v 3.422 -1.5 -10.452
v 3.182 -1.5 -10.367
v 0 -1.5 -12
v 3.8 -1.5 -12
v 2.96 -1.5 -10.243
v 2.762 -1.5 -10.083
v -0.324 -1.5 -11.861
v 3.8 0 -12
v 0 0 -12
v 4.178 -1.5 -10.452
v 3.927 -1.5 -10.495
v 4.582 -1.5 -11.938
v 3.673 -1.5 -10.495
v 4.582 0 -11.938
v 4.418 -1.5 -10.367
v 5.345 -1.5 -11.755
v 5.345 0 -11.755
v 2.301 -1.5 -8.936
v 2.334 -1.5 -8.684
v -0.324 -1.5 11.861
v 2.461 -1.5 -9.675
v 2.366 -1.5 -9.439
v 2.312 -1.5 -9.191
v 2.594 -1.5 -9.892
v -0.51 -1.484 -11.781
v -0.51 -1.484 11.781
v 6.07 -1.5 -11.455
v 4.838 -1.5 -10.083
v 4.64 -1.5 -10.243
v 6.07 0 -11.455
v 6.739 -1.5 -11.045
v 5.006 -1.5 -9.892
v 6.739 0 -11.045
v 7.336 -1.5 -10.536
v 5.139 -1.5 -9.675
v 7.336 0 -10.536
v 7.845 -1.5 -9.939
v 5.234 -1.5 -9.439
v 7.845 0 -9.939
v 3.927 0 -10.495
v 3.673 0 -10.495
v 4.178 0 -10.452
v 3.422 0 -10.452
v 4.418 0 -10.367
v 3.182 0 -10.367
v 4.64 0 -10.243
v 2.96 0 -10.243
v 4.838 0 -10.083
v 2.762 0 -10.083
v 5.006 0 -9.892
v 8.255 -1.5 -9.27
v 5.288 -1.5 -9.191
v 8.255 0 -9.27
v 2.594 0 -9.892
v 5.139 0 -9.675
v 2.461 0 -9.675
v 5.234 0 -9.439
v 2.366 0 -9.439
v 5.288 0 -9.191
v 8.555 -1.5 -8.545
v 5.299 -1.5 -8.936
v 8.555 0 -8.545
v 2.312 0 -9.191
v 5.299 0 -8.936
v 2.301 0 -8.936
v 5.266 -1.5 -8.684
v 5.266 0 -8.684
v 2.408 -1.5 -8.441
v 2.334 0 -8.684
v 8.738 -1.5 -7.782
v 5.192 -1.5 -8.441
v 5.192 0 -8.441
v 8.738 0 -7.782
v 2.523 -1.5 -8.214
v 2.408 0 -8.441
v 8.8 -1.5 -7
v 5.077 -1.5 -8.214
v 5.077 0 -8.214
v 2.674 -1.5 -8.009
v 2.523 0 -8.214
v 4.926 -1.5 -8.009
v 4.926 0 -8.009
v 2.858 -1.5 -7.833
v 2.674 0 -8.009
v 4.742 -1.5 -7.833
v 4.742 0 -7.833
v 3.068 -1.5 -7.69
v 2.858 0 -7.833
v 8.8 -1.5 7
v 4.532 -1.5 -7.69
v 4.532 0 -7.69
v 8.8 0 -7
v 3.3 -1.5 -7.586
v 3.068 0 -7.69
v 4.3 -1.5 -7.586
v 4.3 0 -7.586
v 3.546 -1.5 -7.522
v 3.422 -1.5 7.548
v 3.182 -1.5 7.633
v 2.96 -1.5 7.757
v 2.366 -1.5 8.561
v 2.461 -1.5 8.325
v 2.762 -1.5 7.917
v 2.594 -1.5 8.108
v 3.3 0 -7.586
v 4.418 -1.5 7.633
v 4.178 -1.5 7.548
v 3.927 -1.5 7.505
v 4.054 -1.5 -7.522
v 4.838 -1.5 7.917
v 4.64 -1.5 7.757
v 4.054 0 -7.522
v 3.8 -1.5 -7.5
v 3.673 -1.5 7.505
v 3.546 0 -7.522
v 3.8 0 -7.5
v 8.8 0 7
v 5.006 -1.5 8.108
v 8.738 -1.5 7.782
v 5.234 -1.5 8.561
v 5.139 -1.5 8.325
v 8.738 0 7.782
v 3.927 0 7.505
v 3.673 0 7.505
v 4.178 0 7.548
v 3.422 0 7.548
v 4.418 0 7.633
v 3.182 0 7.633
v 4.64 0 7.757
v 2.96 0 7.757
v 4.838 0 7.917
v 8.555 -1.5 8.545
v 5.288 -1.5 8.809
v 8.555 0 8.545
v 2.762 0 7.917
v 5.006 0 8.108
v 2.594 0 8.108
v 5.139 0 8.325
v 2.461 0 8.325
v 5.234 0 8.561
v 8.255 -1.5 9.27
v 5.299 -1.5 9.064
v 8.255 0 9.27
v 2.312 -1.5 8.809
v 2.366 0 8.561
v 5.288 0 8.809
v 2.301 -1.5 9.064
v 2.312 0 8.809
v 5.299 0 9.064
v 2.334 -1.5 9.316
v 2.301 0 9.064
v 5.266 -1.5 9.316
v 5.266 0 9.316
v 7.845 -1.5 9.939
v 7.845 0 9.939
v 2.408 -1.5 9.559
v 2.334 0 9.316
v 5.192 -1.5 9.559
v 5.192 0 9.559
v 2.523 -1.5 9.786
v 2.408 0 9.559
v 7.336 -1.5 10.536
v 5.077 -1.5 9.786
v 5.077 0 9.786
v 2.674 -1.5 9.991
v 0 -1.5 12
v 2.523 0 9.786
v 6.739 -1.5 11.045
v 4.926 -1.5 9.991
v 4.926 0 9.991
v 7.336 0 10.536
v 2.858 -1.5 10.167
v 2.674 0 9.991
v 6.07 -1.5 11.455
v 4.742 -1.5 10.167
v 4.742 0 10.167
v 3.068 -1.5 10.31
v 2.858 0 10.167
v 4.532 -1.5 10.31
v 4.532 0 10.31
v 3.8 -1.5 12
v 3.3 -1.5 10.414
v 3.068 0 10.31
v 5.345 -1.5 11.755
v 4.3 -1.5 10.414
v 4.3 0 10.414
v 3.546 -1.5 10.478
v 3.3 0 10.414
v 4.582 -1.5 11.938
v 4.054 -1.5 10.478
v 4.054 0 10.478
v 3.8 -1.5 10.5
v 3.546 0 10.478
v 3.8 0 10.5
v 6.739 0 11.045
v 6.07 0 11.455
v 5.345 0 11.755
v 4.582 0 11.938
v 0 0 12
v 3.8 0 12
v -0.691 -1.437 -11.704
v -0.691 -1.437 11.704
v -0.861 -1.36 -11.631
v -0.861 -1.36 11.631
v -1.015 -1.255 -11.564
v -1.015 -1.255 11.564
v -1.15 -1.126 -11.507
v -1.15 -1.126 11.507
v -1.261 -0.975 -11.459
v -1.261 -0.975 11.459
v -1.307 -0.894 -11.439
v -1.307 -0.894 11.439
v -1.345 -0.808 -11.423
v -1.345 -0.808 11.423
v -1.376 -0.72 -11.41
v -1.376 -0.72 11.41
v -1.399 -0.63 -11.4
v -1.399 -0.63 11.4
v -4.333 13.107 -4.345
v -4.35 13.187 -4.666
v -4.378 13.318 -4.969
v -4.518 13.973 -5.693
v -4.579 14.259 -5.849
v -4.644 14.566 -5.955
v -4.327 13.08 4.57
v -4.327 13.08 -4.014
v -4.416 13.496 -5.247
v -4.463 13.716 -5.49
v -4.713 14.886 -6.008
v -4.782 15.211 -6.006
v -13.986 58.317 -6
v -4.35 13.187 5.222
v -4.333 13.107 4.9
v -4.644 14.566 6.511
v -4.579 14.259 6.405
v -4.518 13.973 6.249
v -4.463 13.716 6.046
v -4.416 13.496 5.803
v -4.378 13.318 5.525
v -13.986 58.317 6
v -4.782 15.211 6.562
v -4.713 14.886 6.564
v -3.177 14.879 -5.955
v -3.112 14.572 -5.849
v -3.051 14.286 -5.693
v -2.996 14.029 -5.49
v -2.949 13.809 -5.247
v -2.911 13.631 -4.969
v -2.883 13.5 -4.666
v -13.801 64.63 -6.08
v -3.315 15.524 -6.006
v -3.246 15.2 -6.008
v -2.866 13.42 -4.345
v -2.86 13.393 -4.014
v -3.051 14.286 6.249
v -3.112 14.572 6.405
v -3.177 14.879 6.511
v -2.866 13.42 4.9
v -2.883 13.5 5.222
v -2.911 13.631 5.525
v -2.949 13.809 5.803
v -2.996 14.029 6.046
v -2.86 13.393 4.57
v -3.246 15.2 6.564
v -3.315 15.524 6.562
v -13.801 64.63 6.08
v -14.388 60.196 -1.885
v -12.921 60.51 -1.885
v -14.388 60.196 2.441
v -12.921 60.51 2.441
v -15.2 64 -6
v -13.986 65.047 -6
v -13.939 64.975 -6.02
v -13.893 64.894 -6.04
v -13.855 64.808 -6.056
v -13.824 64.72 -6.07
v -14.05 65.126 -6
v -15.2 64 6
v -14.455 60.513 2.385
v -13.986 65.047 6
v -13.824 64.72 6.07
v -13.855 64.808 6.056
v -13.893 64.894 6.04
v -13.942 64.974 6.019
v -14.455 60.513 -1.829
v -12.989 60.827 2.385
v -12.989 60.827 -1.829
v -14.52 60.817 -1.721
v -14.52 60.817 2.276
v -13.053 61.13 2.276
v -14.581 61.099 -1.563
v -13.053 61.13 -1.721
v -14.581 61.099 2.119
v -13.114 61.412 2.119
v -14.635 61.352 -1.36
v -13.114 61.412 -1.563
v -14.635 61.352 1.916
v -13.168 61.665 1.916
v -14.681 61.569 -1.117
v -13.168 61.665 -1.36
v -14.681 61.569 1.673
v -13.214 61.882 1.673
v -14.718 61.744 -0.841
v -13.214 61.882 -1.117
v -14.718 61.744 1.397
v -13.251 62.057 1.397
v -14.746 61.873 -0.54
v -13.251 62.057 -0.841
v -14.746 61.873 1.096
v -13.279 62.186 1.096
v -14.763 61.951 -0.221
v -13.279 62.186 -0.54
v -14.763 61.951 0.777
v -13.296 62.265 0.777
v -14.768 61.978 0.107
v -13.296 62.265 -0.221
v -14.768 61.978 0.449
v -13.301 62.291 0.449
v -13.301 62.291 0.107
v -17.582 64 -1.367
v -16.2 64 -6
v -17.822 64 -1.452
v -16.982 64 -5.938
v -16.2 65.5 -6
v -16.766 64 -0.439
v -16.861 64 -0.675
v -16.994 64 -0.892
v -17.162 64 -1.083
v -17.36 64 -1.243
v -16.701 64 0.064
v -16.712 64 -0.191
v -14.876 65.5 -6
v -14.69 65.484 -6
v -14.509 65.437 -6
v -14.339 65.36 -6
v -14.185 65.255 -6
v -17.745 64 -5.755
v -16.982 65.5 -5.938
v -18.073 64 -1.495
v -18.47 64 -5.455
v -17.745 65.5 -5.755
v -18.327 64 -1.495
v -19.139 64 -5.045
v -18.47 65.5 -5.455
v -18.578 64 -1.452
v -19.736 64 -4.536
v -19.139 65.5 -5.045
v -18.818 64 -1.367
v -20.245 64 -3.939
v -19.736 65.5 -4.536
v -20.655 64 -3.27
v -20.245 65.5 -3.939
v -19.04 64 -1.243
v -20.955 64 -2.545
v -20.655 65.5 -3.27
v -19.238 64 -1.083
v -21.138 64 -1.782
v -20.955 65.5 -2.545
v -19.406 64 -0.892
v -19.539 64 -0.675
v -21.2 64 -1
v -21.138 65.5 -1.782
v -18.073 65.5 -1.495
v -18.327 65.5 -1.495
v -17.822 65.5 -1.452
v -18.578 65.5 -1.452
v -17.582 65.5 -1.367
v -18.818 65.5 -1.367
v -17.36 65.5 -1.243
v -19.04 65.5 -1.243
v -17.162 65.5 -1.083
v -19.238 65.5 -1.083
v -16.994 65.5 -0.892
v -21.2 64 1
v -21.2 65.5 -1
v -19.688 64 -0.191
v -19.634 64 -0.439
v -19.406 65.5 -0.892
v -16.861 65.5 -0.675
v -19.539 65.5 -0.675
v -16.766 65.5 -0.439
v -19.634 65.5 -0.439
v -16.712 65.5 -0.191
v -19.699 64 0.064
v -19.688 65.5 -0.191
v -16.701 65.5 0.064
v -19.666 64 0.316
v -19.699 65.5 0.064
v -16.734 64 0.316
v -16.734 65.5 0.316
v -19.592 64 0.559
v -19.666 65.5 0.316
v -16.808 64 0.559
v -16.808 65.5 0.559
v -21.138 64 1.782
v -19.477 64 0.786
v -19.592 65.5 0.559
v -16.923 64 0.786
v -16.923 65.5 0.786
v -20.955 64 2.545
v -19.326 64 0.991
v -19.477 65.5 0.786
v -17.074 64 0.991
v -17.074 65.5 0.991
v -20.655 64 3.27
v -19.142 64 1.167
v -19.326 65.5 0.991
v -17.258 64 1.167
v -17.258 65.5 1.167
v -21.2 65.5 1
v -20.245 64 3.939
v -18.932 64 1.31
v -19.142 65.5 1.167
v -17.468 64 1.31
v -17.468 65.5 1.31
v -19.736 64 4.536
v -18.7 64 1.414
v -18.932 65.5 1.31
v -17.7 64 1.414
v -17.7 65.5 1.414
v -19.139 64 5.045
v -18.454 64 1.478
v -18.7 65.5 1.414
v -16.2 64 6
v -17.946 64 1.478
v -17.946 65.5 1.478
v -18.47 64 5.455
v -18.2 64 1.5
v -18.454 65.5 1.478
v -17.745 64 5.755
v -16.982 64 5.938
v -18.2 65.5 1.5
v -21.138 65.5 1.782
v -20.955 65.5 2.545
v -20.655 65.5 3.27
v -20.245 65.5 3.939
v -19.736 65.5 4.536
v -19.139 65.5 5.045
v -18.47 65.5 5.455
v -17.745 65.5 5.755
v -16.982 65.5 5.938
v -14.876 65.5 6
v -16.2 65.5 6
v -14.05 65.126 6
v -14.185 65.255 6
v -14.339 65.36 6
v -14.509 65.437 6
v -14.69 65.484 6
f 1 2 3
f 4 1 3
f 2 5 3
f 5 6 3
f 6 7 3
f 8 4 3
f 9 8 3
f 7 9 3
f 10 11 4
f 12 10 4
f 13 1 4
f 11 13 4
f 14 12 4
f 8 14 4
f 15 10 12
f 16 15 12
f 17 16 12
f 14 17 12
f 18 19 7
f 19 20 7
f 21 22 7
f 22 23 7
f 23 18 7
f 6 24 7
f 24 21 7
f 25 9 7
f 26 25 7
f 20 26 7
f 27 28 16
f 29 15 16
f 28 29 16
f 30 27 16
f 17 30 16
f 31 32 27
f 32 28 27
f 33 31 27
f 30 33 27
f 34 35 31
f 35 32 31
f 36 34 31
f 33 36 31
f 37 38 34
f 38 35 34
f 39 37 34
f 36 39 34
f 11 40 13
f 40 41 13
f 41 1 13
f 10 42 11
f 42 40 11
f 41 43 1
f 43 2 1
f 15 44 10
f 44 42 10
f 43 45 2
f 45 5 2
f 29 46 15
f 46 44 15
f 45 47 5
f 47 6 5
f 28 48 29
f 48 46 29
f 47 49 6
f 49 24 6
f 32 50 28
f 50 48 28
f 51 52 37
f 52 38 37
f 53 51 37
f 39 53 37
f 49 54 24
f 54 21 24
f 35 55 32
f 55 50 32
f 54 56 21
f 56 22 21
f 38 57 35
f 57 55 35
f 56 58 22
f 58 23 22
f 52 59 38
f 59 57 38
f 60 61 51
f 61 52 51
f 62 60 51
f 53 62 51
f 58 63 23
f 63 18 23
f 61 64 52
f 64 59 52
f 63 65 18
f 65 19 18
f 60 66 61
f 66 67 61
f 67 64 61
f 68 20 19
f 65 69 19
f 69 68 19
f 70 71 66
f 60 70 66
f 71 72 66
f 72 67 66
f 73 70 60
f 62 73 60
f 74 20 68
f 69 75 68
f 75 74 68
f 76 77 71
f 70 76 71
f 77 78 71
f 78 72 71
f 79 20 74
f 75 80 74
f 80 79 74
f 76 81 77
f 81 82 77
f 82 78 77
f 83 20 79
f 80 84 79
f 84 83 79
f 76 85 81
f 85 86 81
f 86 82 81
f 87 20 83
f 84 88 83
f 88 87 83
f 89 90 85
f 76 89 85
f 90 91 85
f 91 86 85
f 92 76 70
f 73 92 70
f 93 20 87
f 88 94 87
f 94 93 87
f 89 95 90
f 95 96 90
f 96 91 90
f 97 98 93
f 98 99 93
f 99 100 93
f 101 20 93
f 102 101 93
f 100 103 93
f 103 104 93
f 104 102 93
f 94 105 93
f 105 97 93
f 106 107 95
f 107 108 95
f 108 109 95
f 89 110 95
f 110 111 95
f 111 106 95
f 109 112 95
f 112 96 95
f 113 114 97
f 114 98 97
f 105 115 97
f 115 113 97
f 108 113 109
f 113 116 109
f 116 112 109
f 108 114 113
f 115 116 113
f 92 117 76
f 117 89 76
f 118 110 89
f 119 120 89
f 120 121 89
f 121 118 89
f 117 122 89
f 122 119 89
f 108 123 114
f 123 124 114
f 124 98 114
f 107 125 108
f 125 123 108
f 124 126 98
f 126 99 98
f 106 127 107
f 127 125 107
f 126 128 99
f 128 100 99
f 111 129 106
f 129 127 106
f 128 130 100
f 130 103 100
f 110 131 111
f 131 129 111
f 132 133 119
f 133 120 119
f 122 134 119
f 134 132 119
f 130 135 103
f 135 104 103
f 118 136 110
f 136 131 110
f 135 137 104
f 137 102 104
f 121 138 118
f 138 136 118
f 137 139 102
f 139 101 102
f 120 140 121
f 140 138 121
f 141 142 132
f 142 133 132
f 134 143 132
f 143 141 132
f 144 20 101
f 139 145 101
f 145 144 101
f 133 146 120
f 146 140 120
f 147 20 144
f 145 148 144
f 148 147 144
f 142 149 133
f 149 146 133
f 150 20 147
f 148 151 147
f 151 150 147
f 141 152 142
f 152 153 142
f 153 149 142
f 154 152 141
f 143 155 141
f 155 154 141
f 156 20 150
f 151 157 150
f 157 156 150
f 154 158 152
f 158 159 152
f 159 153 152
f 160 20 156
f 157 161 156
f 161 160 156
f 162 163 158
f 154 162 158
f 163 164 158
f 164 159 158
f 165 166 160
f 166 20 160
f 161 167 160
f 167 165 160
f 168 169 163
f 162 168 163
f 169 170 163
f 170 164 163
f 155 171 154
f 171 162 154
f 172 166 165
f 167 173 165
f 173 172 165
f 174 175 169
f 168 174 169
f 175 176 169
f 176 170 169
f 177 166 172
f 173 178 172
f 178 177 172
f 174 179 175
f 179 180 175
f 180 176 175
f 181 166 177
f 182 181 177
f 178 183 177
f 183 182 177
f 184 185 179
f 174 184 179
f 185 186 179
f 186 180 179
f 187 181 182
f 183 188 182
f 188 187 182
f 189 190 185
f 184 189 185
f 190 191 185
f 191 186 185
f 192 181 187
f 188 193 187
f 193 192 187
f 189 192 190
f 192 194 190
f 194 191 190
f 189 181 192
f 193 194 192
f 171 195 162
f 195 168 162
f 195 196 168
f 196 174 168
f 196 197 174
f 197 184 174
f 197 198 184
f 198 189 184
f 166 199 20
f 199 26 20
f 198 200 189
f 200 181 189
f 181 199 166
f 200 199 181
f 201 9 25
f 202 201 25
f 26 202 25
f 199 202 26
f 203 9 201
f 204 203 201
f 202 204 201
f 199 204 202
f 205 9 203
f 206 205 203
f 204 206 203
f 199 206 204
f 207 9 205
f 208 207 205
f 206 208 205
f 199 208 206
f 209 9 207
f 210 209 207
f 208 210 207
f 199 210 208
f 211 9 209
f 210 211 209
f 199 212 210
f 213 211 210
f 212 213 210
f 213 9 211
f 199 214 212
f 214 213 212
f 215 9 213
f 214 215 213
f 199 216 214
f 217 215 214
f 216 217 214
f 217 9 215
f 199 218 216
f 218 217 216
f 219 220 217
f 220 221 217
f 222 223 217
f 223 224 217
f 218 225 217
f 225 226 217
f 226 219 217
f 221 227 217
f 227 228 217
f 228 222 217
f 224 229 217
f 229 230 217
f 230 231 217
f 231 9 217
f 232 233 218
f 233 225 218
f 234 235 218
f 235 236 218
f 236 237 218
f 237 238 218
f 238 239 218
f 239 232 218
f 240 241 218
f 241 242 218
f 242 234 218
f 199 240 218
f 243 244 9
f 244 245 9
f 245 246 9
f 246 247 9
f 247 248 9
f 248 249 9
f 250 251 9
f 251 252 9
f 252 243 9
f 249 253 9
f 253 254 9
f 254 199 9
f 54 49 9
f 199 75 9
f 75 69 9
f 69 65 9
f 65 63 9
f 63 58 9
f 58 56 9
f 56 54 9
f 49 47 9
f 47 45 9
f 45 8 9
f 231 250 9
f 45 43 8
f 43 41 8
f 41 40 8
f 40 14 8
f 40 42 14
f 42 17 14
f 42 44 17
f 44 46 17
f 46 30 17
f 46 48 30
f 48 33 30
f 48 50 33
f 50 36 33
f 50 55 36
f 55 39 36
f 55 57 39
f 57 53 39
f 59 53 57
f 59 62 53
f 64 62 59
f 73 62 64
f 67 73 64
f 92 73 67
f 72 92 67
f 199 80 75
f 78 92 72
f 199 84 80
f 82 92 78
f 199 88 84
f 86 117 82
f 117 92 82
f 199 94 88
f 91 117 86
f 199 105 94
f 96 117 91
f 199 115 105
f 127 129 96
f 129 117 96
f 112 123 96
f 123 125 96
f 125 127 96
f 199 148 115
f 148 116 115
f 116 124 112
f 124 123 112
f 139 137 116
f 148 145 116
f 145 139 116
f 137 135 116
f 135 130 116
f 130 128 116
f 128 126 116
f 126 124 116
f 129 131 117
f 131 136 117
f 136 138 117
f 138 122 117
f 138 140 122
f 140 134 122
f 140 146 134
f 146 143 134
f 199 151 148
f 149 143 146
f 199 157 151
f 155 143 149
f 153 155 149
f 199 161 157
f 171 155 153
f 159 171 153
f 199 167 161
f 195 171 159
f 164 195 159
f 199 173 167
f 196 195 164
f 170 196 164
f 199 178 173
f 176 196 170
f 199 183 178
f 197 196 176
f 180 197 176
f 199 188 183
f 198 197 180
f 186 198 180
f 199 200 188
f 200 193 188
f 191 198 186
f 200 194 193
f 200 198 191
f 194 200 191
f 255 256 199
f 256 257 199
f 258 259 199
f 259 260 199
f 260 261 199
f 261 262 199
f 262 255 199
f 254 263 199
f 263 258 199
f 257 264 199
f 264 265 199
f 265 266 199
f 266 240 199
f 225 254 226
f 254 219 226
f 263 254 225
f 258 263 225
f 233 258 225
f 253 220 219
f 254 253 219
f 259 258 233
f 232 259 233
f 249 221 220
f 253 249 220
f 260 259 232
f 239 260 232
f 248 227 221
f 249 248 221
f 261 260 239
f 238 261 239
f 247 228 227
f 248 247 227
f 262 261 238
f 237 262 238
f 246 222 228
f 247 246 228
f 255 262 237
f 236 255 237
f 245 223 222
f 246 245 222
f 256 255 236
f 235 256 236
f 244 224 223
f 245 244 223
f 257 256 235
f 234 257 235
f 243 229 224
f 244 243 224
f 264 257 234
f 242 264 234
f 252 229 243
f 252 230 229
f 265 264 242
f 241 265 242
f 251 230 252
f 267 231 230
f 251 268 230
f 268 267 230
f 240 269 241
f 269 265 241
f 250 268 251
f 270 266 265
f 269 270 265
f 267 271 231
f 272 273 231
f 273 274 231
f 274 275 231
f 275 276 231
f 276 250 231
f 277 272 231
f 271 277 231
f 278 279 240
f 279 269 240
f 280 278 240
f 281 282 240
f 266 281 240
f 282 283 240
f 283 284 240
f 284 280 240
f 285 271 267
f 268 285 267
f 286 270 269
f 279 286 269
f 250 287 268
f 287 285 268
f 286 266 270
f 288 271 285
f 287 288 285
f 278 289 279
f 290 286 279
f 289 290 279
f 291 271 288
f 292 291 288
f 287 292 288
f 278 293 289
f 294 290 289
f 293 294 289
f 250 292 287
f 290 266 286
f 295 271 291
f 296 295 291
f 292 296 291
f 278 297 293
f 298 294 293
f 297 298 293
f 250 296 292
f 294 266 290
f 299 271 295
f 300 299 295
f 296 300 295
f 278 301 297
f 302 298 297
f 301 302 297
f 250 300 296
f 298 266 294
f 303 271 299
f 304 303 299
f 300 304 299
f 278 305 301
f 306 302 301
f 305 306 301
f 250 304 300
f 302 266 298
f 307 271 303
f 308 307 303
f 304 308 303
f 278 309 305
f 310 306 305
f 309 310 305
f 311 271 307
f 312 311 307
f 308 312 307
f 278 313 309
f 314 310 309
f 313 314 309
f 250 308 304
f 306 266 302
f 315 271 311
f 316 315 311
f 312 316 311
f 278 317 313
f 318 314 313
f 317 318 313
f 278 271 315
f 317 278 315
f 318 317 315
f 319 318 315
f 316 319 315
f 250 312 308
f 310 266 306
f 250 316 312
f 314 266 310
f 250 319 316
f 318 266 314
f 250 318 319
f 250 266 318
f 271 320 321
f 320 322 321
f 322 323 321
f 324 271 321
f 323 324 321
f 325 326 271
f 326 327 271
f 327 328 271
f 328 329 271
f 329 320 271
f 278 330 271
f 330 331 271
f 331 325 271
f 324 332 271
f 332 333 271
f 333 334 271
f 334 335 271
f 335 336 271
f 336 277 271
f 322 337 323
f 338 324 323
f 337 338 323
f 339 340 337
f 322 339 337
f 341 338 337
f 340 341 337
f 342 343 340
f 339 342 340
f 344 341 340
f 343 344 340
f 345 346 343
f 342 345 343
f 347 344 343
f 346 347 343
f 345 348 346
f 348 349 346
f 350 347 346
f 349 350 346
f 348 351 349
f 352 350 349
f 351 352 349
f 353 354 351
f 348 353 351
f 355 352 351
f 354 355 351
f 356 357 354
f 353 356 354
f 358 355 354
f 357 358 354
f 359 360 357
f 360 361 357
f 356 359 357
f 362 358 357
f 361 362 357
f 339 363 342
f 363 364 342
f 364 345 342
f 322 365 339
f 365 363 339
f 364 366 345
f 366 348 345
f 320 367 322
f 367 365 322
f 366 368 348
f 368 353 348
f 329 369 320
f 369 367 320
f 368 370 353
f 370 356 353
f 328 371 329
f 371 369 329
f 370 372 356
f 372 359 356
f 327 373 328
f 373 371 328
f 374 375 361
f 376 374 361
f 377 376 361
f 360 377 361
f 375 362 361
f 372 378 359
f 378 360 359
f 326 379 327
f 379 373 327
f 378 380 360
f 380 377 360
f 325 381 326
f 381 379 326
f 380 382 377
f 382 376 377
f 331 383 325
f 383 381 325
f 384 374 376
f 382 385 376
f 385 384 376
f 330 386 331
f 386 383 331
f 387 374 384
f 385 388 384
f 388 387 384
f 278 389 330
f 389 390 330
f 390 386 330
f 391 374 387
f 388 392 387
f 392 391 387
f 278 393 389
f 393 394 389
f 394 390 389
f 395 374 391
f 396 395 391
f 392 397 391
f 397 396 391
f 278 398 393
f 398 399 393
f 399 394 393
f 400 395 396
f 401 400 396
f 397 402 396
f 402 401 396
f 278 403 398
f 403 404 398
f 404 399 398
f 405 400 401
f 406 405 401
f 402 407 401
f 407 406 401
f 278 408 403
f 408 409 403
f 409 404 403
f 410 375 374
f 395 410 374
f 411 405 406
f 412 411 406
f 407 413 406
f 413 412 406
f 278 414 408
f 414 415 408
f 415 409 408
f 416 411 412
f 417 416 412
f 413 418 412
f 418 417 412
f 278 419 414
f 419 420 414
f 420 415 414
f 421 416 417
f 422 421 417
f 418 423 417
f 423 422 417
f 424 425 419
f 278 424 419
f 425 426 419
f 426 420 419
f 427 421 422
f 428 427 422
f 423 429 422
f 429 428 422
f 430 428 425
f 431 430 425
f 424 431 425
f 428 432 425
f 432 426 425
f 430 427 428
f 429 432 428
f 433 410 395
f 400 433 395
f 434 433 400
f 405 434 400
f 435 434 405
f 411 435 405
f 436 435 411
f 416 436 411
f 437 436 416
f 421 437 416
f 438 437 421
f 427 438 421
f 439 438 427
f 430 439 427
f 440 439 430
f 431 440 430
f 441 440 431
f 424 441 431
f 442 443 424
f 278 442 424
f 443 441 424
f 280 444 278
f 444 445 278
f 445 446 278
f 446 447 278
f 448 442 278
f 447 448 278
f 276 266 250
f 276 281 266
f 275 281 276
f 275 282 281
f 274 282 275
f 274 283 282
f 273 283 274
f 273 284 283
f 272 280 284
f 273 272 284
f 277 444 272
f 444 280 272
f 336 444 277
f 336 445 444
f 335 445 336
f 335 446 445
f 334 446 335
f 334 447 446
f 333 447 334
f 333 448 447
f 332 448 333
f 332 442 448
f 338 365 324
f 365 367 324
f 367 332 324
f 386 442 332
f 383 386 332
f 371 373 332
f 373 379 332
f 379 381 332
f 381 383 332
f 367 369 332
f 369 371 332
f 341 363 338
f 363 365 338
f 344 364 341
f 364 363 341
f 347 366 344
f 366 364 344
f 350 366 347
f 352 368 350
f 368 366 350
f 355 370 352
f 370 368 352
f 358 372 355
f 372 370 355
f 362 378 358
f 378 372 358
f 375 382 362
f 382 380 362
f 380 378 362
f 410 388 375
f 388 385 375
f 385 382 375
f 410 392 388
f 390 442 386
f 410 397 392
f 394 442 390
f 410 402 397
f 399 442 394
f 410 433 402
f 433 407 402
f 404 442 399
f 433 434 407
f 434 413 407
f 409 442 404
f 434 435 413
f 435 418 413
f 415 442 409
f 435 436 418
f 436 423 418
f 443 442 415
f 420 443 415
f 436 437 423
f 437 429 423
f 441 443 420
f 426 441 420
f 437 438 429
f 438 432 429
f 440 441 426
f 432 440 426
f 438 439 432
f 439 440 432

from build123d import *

# Parameters (mm, degrees)
BOSS_EXTRUDE1_DEPTH = 12
SKETCH3_R           = 1.5
CUT_EXTRUDE1_DEPTH  = 70.883402894
SKETCH4_R           = 1.5
CUT_EXTRUDE3_DEPTH  = 72.291233683
SKETCH6_OUTSIDE_W   = 47.446
SKETCH6_OUTSIDE_H   = 41.446
CUT_EXTRUDE4_DEPTH  = 95.687327558
FILLET1_R           = 5
FILLET2_R           = 5
FILLET3_R           = 5
FILLET4_R           = 1.1
FILLET5_R           = 1.1
CUT_EXTRUDE5_DEPTH  = 70.883402894
FILLET6_R           = 2
FILLET7_R           = 2
FILLET8_R           = 2
FILLET9_R           = 2


with BuildPart() as part:
    # Sketch2 → Boss-Extrude1 (new, symmetric)
    with BuildSketch(Plane.XY):
        Polygon((-13.986484746, 65.5), (0, 0), (8.8, 0), (8.8, -1.5), (-1.213515254, -1.5), (-15.2, 64), (-21.2, 64), (-21.2, 65.5), align=None)
    extrude(amount=BOSS_EXTRUDE1_DEPTH, both=True)

    # Sketch3 → Cut-Extrude1 (cut, through all)
    with BuildSketch(Plane(origin=(0, 0, 0), x_dir=(1, 0, 0), z_dir=(0, 1, 0))):
        with Locations(Location((3.8, 9, 0), (0, 0, 270))):
            Circle(SKETCH3_R)
        with Locations(Location((3.8, -9, 0), (0, 0, 270))):
            Circle(SKETCH3_R)
    extrude(amount=-CUT_EXTRUDE1_DEPTH, mode=Mode.SUBTRACT)

    # Sketch4 → Cut-Extrude3 (cut, through all)
    with BuildSketch(Plane(origin=(0, 65.5, 0), x_dir=(1, 0, 0), z_dir=(0, 1, 0))):
        with Locations(Location((-18.2, 0, 0), (0, 0, 270))):
            Circle(SKETCH4_R)
    extrude(amount=-CUT_EXTRUDE3_DEPTH, mode=Mode.SUBTRACT)

    # Sketch6 outside → Cut-Extrude4 (cut, through all)
    with BuildSketch(Plane(origin=(0, 90, 0), x_dir=(1, 0, 0), z_dir=(0, 1, 0))):
        with Locations((-6.2, 0)):
            Rectangle(SKETCH6_OUTSIDE_W, SKETCH6_OUTSIDE_H)
        Polygon((-21.2, 6), (-13.986484746, 6), (0, 12), (8.8, 12), (8.8, -12), (0, -12), (-13.986484746, -6), (-21.2, -6), align=None, mode=Mode.SUBTRACT)
    extrude(amount=-CUT_EXTRUDE4_DEPTH, mode=Mode.SUBTRACT)

    # Fillet1
    fillet1_edges = [part.edges().sort_by_distance(p)[0] for p in [
        (8.8, -0.75, 12),
    ]]
    fillet(fillet1_edges, radius=FILLET1_R)

    # Fillet2
    fillet2_edges = [part.edges().sort_by_distance(p)[0] for p in [
        (8.8, -0.75, -12),
    ]]
    fillet(fillet2_edges, radius=FILLET2_R)

    # Fillet3
    fillet3_edges = [part.edges().sort_by_distance(p)[0] for p in [
        (-21.2, 64.75, 6),
        (-21.2, 64.75, -6),
    ]]
    fillet(fillet3_edges, radius=FILLET3_R)

    # Fillet4
    fillet4_edges = [part.edges().sort_by_distance(p)[0] for p in [
        (-1.213515254, -1.5, 0),
    ]]
    fillet(fillet4_edges, radius=FILLET4_R)

    # Fillet5
    fillet5_edges = [part.edges().sort_by_distance(p)[0] for p in [
        (-13.986484746, 65.5, 0),
    ]]
    fillet(fillet5_edges, radius=FILLET5_R)

    # Sketch7 → Cut-Extrude5 (cut, through all)
    with BuildSketch(Plane(origin=(0, 0, 0), x_dir=(0, 0, -1), z_dir=(0.9779527521078789, 0.20882627862562123, 0))):
        Polygon((-6.757100422, 13.69539962), (6.201245399, 13.69539962), (1.722072489, 63.69539962), (-2.277927511, 63.69539962), align=None)
    extrude(amount=-CUT_EXTRUDE5_DEPTH, mode=Mode.SUBTRACT)

    # Fillet6
    fillet6_edges = [part.edges().sort_by_distance(p)[0] for p in [
        (-14.034737832, 62.134471646, -1.722072489),
    ]]
    fillet(fillet6_edges, radius=FILLET6_R)

    # Fillet7
    fillet7_edges = [part.edges().sort_by_distance(p)[0] for p in [
        (-14.034737832, 62.134471646, 2.277927511),
    ]]
    fillet(fillet7_edges, radius=FILLET7_R)

    # Fillet8
    fillet8_edges = [part.edges().sort_by_distance(p)[0] for p in [
        (-3.593423901, 13.236834041, -6.201245399),
    ]]
    fillet(fillet8_edges, radius=FILLET8_R)

    # Fillet9
    fillet9_edges = [part.edges().sort_by_distance(p)[0] for p in [
        (-3.593423901, 13.236834041, 6.757100422),
    ]]
    fillet(fillet9_edges, radius=FILLET9_R)


solid = part.part
